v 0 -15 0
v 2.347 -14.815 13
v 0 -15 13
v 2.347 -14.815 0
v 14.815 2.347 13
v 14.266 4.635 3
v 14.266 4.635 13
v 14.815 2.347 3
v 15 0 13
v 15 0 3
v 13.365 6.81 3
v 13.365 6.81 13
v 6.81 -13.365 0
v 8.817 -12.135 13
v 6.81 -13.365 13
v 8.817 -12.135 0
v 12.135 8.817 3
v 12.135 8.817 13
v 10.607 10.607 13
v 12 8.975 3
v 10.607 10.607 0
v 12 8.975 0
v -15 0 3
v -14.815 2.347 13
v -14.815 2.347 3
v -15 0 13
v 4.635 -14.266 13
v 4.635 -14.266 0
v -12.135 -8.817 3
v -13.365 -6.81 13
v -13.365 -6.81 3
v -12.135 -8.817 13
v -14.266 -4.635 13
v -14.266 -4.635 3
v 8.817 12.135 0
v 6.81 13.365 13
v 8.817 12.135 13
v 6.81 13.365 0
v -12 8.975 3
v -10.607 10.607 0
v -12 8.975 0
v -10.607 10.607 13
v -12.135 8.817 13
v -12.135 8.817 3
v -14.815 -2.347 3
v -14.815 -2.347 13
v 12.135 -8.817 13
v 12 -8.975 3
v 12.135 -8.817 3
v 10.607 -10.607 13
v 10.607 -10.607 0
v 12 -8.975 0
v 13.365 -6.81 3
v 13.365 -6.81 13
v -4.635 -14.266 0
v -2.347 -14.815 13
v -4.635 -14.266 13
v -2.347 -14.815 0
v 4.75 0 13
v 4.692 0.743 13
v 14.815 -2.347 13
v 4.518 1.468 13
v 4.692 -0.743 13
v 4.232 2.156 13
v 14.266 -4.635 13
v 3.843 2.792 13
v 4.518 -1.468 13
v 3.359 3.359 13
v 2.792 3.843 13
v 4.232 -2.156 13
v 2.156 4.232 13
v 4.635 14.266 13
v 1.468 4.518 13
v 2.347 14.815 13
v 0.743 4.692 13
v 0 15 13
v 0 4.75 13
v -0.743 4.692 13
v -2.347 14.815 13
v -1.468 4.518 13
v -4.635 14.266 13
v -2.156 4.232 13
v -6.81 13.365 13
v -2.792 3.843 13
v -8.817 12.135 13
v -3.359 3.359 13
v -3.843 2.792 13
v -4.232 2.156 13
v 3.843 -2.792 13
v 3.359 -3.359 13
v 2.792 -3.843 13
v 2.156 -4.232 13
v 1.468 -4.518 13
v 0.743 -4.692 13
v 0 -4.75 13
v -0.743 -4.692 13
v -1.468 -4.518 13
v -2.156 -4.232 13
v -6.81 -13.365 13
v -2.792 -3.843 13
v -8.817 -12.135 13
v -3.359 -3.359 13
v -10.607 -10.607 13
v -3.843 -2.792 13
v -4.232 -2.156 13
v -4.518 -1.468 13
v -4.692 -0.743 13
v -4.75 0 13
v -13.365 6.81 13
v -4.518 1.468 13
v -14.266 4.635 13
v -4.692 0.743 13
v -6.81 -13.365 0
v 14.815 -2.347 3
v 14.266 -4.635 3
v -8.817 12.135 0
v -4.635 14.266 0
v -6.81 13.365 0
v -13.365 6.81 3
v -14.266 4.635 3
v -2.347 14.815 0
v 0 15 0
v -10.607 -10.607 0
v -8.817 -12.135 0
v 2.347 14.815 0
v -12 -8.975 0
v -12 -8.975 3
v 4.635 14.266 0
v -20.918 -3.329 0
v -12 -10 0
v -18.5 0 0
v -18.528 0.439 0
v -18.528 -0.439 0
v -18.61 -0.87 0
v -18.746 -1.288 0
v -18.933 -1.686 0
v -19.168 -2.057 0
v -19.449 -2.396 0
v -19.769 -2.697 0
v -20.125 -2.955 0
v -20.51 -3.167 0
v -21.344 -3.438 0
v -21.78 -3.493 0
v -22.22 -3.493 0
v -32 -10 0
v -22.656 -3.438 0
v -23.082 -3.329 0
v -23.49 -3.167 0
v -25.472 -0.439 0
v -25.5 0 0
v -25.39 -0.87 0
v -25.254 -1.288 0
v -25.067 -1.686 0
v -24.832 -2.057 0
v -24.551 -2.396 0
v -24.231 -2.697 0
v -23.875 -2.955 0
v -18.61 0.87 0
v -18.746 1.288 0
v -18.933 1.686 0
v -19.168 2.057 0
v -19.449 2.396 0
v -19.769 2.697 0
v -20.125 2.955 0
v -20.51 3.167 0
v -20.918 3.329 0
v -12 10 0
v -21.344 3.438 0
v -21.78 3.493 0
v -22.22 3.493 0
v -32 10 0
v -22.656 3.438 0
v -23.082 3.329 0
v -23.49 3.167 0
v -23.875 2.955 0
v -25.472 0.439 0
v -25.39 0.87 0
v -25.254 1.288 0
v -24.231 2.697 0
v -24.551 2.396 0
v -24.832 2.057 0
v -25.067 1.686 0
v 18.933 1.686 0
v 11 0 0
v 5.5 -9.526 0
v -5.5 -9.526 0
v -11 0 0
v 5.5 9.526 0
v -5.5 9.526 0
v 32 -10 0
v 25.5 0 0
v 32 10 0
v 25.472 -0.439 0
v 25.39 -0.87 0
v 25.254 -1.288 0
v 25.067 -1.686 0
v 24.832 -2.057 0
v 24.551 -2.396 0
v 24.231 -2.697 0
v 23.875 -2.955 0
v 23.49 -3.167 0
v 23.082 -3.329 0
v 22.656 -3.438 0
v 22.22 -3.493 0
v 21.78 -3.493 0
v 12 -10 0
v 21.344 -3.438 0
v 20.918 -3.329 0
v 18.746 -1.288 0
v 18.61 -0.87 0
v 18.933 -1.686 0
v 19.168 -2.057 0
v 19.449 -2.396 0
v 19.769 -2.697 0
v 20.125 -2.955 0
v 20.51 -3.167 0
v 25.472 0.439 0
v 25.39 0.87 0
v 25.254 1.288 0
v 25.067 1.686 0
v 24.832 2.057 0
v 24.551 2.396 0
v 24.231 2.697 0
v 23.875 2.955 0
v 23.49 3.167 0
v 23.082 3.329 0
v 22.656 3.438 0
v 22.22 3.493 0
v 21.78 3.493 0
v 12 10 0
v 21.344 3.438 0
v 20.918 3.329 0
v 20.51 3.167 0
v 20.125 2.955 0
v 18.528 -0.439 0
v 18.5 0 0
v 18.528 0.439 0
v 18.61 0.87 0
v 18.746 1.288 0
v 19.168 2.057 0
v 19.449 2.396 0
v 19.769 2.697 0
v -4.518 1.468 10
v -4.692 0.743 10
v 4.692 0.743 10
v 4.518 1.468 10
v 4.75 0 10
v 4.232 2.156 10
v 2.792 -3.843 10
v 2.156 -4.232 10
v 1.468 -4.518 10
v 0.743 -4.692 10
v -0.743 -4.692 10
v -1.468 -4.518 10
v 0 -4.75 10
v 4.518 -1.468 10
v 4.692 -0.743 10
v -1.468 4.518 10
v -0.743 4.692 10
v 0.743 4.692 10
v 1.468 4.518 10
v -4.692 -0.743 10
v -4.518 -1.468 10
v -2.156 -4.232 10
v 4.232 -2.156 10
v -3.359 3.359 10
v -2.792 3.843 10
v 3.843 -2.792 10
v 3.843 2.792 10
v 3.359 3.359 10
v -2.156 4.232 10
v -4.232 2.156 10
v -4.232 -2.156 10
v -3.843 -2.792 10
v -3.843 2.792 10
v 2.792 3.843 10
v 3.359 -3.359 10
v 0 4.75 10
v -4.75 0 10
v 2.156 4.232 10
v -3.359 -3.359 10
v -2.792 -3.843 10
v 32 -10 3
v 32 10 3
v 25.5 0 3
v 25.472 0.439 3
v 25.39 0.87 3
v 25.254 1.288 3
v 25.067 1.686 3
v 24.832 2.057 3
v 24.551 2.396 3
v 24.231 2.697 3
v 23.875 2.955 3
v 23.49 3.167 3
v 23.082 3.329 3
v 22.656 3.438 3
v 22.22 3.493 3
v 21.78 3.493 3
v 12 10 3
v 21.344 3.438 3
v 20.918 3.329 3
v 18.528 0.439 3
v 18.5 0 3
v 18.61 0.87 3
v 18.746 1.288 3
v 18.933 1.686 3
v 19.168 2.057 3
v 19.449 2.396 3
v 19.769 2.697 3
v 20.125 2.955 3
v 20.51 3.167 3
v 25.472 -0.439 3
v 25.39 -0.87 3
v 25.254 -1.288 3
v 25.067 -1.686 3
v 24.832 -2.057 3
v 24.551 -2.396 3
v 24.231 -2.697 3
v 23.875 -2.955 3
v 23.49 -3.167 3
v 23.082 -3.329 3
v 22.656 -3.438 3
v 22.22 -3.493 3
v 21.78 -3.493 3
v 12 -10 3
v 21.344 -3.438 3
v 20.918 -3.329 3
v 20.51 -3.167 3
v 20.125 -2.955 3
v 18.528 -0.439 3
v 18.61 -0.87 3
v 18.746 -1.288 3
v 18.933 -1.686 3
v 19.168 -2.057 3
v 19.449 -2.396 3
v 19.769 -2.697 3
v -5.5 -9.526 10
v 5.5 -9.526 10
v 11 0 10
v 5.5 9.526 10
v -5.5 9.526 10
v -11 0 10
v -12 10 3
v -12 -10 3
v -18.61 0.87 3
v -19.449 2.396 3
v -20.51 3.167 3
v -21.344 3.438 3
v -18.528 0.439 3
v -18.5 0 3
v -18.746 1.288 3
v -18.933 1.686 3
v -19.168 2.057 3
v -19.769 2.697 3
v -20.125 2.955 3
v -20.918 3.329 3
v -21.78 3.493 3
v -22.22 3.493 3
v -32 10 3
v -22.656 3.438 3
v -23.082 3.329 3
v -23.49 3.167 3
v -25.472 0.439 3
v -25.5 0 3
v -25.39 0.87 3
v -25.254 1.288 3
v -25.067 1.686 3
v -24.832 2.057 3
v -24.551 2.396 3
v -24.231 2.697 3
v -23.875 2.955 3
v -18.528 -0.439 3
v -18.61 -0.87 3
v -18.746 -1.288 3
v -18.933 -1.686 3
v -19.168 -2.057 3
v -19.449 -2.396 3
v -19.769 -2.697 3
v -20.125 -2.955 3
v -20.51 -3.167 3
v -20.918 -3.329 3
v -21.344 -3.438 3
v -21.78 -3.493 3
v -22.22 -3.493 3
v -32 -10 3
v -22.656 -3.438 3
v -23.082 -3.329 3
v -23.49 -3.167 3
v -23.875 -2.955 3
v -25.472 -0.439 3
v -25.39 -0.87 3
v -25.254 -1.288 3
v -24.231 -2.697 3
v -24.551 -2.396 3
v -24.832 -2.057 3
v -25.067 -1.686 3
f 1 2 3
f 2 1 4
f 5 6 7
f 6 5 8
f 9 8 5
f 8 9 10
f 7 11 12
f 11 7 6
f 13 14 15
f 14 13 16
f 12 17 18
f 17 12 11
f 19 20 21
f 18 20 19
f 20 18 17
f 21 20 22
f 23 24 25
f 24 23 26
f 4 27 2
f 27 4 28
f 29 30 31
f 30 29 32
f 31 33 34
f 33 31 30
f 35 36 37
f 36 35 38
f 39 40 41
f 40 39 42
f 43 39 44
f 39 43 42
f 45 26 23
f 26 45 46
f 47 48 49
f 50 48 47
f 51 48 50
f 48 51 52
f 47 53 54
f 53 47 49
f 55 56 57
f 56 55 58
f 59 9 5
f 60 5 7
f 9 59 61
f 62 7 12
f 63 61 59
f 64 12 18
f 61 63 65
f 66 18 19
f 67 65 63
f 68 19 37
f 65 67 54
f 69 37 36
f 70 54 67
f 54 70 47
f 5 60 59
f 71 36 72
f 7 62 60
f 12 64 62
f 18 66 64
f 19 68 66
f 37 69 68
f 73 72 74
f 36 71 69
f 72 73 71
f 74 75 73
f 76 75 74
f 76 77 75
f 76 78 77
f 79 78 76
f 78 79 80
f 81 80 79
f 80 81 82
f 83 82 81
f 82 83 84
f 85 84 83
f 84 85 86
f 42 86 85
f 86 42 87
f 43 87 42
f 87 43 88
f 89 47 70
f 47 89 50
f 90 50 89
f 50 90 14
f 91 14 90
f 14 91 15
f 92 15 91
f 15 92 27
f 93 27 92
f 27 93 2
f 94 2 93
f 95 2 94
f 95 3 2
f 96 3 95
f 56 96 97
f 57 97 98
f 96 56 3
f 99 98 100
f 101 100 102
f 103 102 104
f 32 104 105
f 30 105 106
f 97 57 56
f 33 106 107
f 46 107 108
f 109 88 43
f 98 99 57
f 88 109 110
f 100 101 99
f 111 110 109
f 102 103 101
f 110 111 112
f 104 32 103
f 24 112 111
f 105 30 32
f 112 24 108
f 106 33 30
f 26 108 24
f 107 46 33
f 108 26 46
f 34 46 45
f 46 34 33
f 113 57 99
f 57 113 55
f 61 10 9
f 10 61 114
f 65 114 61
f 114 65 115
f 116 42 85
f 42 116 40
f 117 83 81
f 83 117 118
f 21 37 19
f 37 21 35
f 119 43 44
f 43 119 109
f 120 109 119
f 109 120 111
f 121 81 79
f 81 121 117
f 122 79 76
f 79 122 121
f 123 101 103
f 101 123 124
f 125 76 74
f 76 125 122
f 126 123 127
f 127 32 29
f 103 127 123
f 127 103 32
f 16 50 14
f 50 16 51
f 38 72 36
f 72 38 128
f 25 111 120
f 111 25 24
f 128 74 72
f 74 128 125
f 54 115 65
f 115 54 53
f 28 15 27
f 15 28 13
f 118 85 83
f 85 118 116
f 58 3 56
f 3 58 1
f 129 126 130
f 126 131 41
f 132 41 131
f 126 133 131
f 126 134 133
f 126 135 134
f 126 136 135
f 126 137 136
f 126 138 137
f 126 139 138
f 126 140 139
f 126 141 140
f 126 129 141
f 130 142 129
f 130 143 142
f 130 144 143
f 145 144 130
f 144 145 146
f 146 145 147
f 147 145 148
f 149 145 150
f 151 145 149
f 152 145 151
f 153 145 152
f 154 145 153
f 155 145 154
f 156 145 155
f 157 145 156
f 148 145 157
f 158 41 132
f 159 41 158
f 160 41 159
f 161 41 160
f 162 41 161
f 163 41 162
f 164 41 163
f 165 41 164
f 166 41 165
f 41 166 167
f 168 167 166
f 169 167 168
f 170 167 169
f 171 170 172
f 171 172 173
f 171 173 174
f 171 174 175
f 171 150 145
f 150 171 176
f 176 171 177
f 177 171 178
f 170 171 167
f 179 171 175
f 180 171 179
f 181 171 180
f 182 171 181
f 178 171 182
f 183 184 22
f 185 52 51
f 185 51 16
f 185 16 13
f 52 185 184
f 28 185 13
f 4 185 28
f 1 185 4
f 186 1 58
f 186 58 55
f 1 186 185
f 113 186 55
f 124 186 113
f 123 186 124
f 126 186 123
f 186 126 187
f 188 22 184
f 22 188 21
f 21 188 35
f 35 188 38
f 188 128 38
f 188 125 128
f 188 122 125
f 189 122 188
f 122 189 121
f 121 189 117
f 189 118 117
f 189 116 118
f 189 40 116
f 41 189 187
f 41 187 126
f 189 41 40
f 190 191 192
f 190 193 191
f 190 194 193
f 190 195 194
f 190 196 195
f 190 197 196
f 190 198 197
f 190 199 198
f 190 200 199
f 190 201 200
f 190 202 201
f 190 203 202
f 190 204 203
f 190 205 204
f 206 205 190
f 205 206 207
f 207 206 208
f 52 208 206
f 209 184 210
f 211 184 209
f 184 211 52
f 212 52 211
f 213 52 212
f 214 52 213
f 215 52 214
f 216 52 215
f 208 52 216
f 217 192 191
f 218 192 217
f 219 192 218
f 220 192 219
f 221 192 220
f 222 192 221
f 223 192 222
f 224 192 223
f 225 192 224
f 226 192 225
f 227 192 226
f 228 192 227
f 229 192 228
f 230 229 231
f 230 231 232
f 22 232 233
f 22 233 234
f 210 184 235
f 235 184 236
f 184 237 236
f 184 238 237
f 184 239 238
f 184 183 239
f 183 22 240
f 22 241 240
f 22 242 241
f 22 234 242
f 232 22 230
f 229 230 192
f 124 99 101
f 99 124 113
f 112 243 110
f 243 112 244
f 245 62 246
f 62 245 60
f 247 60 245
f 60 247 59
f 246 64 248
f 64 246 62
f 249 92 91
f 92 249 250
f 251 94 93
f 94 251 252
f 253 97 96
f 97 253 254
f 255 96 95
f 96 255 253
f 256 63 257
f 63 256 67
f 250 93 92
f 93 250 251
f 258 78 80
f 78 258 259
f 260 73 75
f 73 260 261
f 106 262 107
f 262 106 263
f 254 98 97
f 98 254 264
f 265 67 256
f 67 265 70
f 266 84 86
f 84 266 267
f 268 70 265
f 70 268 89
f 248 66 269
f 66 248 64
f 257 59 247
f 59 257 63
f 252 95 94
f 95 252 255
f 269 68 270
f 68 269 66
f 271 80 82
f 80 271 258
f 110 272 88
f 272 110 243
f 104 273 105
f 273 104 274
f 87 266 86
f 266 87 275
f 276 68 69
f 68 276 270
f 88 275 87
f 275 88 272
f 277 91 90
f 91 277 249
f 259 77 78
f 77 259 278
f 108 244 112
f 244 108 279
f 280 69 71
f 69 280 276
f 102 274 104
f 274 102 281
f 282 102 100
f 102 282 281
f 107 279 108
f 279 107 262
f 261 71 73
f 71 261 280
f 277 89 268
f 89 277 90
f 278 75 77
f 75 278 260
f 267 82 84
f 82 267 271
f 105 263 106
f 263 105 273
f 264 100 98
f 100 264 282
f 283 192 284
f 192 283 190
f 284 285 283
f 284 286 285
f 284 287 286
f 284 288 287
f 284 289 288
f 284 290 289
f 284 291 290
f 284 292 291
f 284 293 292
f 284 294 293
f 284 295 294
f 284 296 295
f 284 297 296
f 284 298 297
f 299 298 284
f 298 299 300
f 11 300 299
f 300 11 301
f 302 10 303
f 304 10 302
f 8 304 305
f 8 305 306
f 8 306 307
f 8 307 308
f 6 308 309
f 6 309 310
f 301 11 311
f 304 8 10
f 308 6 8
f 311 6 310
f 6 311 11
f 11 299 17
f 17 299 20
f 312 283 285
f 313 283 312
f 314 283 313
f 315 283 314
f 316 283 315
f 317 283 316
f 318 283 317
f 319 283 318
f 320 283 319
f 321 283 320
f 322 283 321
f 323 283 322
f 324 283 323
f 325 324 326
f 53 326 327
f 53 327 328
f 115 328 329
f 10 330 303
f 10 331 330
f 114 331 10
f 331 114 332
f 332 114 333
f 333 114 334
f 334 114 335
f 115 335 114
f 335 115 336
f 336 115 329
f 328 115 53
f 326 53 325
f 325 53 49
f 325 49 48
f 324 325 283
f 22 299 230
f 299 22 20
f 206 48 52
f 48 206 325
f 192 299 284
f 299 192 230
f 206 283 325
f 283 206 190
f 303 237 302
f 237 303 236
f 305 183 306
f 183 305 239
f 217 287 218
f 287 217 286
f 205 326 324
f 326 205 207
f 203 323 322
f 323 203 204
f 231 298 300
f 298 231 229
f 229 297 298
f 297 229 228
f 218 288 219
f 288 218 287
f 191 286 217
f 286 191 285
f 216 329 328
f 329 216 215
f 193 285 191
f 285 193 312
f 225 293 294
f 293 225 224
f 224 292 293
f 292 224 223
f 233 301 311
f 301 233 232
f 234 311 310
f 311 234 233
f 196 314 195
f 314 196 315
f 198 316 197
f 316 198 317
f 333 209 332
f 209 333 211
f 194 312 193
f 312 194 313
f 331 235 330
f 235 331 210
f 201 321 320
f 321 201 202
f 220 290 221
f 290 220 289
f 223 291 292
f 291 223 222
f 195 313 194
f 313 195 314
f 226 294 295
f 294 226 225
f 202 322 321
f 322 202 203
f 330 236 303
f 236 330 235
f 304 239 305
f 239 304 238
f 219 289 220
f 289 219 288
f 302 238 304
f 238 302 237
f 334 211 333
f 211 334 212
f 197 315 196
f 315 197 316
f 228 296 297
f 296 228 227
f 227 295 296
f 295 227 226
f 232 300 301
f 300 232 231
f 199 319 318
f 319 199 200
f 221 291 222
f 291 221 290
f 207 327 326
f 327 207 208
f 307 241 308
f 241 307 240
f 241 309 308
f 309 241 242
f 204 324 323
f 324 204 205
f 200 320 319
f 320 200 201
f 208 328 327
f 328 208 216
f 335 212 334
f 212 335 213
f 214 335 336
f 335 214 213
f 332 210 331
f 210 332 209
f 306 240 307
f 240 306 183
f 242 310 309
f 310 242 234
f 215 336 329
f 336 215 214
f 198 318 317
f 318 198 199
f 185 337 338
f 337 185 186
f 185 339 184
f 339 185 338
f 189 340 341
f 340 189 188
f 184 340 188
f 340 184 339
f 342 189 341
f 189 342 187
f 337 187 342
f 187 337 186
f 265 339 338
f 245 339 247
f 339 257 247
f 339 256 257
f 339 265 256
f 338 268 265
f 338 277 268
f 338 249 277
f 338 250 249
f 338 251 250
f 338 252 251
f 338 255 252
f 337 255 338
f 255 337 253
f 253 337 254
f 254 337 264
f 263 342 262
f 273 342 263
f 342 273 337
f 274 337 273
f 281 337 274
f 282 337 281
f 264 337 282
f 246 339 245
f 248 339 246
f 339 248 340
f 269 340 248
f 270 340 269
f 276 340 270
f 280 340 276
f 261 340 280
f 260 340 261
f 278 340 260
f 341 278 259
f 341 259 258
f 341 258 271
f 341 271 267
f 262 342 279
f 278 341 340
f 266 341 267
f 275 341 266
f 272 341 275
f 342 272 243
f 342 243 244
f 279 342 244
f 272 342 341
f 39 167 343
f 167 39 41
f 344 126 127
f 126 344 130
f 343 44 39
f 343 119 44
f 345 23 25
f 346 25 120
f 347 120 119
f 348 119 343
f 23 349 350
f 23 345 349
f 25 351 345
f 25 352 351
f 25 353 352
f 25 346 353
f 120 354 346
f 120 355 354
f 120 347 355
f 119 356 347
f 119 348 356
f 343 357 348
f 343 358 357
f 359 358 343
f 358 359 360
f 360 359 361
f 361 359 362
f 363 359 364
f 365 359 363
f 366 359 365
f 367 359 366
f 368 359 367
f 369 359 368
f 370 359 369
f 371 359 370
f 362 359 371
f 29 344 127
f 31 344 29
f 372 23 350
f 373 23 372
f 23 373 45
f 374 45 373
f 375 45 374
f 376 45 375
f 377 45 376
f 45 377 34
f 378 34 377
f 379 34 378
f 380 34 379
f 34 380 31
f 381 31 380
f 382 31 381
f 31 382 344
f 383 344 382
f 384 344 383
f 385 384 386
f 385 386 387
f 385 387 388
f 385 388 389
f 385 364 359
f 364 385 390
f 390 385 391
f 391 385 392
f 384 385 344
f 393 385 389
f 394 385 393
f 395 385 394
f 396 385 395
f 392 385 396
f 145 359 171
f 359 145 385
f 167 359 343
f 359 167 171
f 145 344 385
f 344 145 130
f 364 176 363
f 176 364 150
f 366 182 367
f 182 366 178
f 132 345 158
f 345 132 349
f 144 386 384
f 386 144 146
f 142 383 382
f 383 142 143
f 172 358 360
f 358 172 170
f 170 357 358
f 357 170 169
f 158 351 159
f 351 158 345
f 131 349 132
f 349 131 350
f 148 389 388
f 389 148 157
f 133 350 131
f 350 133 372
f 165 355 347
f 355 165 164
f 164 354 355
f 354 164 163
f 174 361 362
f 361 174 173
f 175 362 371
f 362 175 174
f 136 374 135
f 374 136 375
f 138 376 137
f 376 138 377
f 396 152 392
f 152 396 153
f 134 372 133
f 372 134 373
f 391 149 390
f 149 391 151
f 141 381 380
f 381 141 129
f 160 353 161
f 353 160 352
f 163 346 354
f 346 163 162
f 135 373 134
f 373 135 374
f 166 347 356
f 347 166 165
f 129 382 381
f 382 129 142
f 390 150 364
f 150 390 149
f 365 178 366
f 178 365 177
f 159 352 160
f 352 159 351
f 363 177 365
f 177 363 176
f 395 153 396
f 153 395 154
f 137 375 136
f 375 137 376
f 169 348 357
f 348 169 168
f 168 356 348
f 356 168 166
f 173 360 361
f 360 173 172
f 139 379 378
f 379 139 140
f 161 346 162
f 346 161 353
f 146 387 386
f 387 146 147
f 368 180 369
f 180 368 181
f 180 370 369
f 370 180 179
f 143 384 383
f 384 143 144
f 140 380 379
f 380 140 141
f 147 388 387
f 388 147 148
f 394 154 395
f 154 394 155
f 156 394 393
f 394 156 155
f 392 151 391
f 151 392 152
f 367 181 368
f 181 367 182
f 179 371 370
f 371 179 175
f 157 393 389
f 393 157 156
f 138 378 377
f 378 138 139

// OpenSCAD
//measurements

//https://www.lofty.com/pages/how-to-measure-three-dimensional-objects-including-silver-ceramics-glass-sculpture

nut_width = 22;
cube_length = 20;

module holder_with_hole(){
    difference(){
        cylinder(h=13, r=15, $fn=40);
        cylinder(h=13, r=(9.5/2), $fn=40);
        }
    }
    
module fixation_holes(){
    difference(){
        cube([cube_length,cube_length,3]);
        translate([cube_length/2,cube_length/2,0]){
            color ("red") {cylinder(h=3, r=7/2, $fn=50);}
        }
    }
    }
module main_body(){
  difference(){
    holder_with_hole();
    color ("red") {cylinder(h=10, r=nut_width/2, $fn=6);}
    
}
    
}


main_body();
translate([nut_width/2+1,-cube_length/2,0]){fixation_holes();}
translate([-(cube_length+nut_width/2+1),-cube_length/2,0]){fixation_holes();}
